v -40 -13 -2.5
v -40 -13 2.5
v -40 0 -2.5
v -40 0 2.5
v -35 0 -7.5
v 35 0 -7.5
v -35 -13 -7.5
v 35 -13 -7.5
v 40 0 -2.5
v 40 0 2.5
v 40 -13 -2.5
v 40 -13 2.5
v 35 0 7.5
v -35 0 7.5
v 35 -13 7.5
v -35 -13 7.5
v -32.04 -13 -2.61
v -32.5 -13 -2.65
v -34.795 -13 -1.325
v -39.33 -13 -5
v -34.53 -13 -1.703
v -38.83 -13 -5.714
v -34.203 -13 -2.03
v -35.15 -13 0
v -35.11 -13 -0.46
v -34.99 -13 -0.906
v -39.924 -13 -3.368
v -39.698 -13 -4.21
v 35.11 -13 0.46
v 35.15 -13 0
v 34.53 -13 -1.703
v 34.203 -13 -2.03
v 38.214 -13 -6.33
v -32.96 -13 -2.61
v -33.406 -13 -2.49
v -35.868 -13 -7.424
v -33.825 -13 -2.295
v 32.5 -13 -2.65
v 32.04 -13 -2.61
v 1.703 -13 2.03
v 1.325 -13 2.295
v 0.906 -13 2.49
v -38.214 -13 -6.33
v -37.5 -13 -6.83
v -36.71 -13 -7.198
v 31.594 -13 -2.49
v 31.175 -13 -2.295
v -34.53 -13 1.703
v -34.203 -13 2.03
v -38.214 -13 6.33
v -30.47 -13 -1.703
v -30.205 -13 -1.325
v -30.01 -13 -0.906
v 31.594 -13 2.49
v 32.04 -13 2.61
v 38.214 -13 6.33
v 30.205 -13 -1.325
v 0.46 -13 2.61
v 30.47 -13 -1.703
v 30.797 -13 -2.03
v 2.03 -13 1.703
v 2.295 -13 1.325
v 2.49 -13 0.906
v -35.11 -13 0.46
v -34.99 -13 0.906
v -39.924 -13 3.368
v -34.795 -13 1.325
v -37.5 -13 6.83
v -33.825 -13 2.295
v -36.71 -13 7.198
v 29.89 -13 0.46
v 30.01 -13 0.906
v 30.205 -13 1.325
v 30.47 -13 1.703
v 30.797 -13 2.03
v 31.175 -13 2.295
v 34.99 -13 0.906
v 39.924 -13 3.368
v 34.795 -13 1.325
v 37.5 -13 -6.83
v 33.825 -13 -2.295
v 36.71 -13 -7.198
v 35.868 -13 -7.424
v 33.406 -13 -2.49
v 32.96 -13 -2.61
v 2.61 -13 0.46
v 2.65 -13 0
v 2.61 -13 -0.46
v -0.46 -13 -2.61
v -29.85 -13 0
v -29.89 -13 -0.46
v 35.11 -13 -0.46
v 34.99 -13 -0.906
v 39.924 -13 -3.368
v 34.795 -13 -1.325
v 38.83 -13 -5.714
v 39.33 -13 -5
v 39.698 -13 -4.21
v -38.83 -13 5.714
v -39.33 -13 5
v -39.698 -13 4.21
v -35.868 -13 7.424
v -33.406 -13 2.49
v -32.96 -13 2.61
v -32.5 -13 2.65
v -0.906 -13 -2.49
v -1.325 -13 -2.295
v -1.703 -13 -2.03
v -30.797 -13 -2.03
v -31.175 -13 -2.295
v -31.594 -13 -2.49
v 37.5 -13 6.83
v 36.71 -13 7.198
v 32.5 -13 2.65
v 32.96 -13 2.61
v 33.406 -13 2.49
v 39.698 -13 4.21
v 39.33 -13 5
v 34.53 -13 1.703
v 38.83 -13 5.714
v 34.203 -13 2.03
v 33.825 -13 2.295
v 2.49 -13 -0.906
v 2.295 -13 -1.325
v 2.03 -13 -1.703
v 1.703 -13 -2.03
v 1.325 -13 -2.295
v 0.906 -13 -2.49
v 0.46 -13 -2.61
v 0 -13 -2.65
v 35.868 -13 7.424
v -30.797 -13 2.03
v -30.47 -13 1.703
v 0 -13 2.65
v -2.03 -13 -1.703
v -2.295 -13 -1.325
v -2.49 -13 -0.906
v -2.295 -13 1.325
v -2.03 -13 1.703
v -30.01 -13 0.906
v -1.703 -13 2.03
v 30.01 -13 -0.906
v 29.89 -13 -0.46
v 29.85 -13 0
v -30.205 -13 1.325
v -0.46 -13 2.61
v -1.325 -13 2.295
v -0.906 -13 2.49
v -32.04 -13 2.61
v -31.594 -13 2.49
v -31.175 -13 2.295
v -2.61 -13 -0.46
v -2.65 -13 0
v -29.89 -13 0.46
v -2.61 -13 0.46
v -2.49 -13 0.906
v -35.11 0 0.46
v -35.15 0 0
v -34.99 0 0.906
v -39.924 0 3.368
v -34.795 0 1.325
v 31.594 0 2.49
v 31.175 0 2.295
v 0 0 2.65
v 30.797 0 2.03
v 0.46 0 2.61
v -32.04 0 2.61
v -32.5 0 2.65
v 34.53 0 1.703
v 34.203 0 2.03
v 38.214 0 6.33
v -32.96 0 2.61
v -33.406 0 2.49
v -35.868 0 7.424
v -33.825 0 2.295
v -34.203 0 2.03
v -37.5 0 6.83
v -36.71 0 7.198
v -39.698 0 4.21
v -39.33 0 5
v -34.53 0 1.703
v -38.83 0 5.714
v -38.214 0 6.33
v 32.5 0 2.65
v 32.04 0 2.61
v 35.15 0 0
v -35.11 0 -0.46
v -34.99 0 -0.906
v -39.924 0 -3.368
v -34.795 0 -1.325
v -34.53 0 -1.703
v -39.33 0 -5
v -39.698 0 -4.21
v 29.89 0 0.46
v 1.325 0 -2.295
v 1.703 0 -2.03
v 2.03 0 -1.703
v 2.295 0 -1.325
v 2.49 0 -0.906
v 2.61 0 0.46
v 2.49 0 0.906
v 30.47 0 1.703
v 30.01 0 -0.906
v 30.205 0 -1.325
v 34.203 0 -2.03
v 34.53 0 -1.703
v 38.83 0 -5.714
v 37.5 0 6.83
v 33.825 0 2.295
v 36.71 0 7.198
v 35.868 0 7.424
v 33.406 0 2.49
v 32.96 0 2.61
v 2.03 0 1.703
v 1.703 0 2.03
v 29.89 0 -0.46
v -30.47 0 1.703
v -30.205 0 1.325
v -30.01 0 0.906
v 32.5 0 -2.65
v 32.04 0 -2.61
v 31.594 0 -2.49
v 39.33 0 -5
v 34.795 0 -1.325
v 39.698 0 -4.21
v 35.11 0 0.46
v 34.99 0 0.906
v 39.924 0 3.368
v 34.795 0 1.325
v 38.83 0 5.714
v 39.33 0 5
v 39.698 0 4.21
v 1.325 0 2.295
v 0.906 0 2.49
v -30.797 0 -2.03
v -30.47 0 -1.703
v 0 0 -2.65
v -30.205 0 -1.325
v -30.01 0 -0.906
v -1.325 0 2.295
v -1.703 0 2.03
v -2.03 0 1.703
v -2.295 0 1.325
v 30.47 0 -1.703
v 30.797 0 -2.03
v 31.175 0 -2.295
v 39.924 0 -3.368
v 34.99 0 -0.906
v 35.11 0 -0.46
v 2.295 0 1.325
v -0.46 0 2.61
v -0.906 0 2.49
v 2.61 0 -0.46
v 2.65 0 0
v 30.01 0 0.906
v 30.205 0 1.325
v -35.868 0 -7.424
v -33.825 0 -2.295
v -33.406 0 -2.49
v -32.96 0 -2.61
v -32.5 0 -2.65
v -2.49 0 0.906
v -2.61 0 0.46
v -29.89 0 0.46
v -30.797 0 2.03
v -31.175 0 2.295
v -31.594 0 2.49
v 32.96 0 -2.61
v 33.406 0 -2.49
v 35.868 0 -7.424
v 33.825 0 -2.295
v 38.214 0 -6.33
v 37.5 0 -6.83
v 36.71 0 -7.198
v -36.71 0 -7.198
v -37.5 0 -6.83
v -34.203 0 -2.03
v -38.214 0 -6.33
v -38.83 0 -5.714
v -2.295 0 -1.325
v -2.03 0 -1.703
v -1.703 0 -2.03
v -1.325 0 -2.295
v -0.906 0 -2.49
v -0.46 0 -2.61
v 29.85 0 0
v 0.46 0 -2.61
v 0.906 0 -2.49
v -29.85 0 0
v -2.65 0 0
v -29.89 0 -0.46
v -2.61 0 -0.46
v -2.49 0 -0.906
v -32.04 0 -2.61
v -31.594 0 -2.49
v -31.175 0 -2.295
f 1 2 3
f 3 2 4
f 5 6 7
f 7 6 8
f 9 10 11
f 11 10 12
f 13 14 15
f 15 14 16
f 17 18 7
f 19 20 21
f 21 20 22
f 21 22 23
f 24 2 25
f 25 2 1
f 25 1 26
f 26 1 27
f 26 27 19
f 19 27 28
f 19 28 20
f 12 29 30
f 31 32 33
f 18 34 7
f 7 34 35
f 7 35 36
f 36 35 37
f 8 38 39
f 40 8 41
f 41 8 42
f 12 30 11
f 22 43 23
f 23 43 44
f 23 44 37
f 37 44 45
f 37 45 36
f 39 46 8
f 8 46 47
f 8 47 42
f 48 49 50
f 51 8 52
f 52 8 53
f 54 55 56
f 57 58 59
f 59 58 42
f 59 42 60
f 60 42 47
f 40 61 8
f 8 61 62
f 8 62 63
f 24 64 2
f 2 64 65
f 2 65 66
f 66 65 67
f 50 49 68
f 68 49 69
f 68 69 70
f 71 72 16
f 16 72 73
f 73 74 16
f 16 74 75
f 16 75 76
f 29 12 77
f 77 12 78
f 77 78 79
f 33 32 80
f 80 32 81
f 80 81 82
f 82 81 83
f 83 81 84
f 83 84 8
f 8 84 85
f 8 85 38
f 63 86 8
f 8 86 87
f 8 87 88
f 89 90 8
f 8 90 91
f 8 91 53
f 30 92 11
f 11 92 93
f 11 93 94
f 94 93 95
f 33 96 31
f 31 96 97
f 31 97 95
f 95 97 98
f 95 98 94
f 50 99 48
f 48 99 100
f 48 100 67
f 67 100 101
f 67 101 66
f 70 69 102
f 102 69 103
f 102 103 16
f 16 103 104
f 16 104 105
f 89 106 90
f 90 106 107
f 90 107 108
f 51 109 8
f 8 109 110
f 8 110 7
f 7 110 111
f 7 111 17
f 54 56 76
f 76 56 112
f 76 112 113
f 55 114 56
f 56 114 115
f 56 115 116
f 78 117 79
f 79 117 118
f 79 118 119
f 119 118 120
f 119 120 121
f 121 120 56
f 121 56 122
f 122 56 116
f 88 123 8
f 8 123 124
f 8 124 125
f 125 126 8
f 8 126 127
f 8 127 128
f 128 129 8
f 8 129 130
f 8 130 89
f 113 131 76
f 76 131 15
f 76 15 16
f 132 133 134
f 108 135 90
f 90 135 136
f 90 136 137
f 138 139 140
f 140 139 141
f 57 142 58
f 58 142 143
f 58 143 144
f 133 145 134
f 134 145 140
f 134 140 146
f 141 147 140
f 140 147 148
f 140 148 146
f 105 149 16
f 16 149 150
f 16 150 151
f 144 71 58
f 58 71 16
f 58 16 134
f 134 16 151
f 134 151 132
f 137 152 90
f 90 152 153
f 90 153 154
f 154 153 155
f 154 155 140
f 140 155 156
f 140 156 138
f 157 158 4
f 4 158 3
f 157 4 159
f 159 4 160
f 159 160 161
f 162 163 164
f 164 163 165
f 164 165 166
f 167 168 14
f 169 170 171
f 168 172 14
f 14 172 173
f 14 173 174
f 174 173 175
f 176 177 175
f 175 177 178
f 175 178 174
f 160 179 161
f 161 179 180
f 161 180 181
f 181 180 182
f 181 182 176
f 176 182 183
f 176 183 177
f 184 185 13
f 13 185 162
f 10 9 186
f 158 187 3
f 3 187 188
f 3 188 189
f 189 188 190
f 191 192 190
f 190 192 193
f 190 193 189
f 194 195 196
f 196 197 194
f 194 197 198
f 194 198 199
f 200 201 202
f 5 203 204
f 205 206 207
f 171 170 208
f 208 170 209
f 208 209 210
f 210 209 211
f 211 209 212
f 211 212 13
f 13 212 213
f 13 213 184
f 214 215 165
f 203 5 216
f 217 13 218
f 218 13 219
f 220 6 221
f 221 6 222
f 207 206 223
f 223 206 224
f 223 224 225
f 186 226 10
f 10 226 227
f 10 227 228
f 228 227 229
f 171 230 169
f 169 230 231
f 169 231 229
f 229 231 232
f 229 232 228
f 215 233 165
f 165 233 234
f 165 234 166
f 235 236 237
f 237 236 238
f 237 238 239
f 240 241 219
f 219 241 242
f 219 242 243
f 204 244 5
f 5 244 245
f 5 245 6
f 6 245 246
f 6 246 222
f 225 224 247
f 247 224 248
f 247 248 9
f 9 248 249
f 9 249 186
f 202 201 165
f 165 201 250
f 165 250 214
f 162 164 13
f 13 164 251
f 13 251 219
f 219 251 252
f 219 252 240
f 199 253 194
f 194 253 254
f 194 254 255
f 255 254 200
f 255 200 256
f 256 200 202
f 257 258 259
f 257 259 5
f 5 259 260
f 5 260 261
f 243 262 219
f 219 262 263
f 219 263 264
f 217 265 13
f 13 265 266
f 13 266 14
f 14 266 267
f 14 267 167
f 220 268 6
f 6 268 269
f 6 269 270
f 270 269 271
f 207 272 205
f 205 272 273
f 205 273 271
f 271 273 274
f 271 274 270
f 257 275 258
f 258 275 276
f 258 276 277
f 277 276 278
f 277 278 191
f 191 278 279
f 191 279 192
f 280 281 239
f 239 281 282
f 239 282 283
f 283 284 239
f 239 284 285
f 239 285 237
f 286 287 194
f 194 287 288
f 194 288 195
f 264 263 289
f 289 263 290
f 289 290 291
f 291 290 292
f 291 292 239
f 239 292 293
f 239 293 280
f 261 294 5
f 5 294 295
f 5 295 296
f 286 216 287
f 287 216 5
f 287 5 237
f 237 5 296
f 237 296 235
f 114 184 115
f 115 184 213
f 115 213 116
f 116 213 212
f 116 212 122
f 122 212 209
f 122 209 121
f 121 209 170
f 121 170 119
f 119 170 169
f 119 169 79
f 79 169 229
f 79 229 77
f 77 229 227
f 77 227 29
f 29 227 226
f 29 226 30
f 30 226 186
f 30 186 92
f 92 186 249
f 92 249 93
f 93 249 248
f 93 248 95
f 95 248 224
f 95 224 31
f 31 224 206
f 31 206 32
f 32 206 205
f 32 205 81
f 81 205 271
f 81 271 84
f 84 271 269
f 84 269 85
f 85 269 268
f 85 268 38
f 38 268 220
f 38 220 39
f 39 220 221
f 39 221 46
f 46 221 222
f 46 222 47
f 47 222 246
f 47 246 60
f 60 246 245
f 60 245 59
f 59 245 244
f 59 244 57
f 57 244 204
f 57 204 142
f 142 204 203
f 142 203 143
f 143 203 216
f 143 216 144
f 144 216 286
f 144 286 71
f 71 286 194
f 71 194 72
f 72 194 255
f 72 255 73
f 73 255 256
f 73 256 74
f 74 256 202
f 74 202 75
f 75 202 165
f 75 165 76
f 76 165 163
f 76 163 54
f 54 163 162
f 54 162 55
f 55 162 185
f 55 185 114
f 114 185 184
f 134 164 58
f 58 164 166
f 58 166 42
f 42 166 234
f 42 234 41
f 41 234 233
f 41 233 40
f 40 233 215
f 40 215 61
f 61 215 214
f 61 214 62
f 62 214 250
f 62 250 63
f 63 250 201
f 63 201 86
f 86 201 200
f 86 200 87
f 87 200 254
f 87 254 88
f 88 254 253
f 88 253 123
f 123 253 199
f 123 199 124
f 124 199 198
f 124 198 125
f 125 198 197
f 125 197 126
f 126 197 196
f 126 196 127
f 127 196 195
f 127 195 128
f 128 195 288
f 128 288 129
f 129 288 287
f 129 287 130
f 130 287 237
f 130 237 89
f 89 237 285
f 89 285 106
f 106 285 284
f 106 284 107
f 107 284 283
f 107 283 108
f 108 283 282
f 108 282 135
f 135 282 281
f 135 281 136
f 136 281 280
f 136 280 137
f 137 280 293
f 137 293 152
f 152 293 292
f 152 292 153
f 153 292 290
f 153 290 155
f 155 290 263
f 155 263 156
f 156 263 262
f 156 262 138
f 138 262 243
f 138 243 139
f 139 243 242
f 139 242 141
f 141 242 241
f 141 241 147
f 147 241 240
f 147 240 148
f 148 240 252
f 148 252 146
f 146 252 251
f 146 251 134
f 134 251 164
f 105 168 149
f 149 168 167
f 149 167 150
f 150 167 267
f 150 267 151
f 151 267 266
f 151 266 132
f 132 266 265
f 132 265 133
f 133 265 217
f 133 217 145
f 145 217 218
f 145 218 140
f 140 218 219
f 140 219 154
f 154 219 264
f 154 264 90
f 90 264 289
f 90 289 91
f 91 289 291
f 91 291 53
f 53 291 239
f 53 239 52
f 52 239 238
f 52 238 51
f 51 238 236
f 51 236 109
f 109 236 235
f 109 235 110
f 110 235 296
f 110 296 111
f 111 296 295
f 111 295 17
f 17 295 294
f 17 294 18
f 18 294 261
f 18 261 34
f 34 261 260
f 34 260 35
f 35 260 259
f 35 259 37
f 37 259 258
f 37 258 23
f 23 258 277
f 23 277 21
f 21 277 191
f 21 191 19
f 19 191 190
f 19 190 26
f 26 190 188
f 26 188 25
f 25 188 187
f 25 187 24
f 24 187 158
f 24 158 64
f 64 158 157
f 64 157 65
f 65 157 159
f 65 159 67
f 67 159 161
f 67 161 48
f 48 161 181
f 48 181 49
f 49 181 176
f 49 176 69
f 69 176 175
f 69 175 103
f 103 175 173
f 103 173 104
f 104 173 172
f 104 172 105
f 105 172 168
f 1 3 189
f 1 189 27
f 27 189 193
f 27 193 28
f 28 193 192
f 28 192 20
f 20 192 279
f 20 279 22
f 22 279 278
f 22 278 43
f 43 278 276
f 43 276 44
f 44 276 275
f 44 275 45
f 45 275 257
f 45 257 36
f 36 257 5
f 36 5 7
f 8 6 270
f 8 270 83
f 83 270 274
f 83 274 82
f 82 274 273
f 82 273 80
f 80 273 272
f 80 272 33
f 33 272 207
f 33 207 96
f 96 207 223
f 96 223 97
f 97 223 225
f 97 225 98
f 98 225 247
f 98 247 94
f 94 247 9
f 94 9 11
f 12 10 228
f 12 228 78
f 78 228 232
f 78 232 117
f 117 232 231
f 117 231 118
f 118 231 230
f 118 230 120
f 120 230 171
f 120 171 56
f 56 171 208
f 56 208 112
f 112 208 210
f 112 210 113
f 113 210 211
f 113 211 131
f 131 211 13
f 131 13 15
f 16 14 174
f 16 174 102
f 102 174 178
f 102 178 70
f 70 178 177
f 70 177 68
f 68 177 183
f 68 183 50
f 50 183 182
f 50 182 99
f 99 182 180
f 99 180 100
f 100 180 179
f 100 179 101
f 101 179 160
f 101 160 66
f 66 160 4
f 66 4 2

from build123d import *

# Parameters (mm, degrees)
SKETCH1_W            = 80
SKETCH1_H            = 15
BOSS_EXTRUDE1_DEPTH  = 13
M5_CLEARANCE_HOLE1_D = 5.3
FILLET1_R            = 5


with BuildPart() as part:
    # Sketch1 → Boss-Extrude1 (new body)
    with BuildSketch(Plane(origin=(0, 0, 0), x_dir=(1, 0, 0), z_dir=(0, 1, 0))):
        Rectangle(SKETCH1_W, SKETCH1_H)
    extrude(amount=-BOSS_EXTRUDE1_DEPTH)

    # M5 Clearance Hole1 (through all)
    with Locations(Plane(origin=(-32.5, 0, 0), x_dir=(0, 0, 1), z_dir=(0, 1, 0))):
        with Locations((0, 0), (0, 32.5), (0, 65)):
            Hole(M5_CLEARANCE_HOLE1_D / 2)

    # Fillet1
    fillet1_edges = [part.edges().sort_by_distance(p)[0] for p in [
        (-40, -6.5, -7.5),
        (40, -6.5, -7.5),
        (40, -6.5, 7.5),
        (-40, -6.5, 7.5),
    ]]
    fillet(fillet1_edges, radius=FILLET1_R)


solid = part.part
